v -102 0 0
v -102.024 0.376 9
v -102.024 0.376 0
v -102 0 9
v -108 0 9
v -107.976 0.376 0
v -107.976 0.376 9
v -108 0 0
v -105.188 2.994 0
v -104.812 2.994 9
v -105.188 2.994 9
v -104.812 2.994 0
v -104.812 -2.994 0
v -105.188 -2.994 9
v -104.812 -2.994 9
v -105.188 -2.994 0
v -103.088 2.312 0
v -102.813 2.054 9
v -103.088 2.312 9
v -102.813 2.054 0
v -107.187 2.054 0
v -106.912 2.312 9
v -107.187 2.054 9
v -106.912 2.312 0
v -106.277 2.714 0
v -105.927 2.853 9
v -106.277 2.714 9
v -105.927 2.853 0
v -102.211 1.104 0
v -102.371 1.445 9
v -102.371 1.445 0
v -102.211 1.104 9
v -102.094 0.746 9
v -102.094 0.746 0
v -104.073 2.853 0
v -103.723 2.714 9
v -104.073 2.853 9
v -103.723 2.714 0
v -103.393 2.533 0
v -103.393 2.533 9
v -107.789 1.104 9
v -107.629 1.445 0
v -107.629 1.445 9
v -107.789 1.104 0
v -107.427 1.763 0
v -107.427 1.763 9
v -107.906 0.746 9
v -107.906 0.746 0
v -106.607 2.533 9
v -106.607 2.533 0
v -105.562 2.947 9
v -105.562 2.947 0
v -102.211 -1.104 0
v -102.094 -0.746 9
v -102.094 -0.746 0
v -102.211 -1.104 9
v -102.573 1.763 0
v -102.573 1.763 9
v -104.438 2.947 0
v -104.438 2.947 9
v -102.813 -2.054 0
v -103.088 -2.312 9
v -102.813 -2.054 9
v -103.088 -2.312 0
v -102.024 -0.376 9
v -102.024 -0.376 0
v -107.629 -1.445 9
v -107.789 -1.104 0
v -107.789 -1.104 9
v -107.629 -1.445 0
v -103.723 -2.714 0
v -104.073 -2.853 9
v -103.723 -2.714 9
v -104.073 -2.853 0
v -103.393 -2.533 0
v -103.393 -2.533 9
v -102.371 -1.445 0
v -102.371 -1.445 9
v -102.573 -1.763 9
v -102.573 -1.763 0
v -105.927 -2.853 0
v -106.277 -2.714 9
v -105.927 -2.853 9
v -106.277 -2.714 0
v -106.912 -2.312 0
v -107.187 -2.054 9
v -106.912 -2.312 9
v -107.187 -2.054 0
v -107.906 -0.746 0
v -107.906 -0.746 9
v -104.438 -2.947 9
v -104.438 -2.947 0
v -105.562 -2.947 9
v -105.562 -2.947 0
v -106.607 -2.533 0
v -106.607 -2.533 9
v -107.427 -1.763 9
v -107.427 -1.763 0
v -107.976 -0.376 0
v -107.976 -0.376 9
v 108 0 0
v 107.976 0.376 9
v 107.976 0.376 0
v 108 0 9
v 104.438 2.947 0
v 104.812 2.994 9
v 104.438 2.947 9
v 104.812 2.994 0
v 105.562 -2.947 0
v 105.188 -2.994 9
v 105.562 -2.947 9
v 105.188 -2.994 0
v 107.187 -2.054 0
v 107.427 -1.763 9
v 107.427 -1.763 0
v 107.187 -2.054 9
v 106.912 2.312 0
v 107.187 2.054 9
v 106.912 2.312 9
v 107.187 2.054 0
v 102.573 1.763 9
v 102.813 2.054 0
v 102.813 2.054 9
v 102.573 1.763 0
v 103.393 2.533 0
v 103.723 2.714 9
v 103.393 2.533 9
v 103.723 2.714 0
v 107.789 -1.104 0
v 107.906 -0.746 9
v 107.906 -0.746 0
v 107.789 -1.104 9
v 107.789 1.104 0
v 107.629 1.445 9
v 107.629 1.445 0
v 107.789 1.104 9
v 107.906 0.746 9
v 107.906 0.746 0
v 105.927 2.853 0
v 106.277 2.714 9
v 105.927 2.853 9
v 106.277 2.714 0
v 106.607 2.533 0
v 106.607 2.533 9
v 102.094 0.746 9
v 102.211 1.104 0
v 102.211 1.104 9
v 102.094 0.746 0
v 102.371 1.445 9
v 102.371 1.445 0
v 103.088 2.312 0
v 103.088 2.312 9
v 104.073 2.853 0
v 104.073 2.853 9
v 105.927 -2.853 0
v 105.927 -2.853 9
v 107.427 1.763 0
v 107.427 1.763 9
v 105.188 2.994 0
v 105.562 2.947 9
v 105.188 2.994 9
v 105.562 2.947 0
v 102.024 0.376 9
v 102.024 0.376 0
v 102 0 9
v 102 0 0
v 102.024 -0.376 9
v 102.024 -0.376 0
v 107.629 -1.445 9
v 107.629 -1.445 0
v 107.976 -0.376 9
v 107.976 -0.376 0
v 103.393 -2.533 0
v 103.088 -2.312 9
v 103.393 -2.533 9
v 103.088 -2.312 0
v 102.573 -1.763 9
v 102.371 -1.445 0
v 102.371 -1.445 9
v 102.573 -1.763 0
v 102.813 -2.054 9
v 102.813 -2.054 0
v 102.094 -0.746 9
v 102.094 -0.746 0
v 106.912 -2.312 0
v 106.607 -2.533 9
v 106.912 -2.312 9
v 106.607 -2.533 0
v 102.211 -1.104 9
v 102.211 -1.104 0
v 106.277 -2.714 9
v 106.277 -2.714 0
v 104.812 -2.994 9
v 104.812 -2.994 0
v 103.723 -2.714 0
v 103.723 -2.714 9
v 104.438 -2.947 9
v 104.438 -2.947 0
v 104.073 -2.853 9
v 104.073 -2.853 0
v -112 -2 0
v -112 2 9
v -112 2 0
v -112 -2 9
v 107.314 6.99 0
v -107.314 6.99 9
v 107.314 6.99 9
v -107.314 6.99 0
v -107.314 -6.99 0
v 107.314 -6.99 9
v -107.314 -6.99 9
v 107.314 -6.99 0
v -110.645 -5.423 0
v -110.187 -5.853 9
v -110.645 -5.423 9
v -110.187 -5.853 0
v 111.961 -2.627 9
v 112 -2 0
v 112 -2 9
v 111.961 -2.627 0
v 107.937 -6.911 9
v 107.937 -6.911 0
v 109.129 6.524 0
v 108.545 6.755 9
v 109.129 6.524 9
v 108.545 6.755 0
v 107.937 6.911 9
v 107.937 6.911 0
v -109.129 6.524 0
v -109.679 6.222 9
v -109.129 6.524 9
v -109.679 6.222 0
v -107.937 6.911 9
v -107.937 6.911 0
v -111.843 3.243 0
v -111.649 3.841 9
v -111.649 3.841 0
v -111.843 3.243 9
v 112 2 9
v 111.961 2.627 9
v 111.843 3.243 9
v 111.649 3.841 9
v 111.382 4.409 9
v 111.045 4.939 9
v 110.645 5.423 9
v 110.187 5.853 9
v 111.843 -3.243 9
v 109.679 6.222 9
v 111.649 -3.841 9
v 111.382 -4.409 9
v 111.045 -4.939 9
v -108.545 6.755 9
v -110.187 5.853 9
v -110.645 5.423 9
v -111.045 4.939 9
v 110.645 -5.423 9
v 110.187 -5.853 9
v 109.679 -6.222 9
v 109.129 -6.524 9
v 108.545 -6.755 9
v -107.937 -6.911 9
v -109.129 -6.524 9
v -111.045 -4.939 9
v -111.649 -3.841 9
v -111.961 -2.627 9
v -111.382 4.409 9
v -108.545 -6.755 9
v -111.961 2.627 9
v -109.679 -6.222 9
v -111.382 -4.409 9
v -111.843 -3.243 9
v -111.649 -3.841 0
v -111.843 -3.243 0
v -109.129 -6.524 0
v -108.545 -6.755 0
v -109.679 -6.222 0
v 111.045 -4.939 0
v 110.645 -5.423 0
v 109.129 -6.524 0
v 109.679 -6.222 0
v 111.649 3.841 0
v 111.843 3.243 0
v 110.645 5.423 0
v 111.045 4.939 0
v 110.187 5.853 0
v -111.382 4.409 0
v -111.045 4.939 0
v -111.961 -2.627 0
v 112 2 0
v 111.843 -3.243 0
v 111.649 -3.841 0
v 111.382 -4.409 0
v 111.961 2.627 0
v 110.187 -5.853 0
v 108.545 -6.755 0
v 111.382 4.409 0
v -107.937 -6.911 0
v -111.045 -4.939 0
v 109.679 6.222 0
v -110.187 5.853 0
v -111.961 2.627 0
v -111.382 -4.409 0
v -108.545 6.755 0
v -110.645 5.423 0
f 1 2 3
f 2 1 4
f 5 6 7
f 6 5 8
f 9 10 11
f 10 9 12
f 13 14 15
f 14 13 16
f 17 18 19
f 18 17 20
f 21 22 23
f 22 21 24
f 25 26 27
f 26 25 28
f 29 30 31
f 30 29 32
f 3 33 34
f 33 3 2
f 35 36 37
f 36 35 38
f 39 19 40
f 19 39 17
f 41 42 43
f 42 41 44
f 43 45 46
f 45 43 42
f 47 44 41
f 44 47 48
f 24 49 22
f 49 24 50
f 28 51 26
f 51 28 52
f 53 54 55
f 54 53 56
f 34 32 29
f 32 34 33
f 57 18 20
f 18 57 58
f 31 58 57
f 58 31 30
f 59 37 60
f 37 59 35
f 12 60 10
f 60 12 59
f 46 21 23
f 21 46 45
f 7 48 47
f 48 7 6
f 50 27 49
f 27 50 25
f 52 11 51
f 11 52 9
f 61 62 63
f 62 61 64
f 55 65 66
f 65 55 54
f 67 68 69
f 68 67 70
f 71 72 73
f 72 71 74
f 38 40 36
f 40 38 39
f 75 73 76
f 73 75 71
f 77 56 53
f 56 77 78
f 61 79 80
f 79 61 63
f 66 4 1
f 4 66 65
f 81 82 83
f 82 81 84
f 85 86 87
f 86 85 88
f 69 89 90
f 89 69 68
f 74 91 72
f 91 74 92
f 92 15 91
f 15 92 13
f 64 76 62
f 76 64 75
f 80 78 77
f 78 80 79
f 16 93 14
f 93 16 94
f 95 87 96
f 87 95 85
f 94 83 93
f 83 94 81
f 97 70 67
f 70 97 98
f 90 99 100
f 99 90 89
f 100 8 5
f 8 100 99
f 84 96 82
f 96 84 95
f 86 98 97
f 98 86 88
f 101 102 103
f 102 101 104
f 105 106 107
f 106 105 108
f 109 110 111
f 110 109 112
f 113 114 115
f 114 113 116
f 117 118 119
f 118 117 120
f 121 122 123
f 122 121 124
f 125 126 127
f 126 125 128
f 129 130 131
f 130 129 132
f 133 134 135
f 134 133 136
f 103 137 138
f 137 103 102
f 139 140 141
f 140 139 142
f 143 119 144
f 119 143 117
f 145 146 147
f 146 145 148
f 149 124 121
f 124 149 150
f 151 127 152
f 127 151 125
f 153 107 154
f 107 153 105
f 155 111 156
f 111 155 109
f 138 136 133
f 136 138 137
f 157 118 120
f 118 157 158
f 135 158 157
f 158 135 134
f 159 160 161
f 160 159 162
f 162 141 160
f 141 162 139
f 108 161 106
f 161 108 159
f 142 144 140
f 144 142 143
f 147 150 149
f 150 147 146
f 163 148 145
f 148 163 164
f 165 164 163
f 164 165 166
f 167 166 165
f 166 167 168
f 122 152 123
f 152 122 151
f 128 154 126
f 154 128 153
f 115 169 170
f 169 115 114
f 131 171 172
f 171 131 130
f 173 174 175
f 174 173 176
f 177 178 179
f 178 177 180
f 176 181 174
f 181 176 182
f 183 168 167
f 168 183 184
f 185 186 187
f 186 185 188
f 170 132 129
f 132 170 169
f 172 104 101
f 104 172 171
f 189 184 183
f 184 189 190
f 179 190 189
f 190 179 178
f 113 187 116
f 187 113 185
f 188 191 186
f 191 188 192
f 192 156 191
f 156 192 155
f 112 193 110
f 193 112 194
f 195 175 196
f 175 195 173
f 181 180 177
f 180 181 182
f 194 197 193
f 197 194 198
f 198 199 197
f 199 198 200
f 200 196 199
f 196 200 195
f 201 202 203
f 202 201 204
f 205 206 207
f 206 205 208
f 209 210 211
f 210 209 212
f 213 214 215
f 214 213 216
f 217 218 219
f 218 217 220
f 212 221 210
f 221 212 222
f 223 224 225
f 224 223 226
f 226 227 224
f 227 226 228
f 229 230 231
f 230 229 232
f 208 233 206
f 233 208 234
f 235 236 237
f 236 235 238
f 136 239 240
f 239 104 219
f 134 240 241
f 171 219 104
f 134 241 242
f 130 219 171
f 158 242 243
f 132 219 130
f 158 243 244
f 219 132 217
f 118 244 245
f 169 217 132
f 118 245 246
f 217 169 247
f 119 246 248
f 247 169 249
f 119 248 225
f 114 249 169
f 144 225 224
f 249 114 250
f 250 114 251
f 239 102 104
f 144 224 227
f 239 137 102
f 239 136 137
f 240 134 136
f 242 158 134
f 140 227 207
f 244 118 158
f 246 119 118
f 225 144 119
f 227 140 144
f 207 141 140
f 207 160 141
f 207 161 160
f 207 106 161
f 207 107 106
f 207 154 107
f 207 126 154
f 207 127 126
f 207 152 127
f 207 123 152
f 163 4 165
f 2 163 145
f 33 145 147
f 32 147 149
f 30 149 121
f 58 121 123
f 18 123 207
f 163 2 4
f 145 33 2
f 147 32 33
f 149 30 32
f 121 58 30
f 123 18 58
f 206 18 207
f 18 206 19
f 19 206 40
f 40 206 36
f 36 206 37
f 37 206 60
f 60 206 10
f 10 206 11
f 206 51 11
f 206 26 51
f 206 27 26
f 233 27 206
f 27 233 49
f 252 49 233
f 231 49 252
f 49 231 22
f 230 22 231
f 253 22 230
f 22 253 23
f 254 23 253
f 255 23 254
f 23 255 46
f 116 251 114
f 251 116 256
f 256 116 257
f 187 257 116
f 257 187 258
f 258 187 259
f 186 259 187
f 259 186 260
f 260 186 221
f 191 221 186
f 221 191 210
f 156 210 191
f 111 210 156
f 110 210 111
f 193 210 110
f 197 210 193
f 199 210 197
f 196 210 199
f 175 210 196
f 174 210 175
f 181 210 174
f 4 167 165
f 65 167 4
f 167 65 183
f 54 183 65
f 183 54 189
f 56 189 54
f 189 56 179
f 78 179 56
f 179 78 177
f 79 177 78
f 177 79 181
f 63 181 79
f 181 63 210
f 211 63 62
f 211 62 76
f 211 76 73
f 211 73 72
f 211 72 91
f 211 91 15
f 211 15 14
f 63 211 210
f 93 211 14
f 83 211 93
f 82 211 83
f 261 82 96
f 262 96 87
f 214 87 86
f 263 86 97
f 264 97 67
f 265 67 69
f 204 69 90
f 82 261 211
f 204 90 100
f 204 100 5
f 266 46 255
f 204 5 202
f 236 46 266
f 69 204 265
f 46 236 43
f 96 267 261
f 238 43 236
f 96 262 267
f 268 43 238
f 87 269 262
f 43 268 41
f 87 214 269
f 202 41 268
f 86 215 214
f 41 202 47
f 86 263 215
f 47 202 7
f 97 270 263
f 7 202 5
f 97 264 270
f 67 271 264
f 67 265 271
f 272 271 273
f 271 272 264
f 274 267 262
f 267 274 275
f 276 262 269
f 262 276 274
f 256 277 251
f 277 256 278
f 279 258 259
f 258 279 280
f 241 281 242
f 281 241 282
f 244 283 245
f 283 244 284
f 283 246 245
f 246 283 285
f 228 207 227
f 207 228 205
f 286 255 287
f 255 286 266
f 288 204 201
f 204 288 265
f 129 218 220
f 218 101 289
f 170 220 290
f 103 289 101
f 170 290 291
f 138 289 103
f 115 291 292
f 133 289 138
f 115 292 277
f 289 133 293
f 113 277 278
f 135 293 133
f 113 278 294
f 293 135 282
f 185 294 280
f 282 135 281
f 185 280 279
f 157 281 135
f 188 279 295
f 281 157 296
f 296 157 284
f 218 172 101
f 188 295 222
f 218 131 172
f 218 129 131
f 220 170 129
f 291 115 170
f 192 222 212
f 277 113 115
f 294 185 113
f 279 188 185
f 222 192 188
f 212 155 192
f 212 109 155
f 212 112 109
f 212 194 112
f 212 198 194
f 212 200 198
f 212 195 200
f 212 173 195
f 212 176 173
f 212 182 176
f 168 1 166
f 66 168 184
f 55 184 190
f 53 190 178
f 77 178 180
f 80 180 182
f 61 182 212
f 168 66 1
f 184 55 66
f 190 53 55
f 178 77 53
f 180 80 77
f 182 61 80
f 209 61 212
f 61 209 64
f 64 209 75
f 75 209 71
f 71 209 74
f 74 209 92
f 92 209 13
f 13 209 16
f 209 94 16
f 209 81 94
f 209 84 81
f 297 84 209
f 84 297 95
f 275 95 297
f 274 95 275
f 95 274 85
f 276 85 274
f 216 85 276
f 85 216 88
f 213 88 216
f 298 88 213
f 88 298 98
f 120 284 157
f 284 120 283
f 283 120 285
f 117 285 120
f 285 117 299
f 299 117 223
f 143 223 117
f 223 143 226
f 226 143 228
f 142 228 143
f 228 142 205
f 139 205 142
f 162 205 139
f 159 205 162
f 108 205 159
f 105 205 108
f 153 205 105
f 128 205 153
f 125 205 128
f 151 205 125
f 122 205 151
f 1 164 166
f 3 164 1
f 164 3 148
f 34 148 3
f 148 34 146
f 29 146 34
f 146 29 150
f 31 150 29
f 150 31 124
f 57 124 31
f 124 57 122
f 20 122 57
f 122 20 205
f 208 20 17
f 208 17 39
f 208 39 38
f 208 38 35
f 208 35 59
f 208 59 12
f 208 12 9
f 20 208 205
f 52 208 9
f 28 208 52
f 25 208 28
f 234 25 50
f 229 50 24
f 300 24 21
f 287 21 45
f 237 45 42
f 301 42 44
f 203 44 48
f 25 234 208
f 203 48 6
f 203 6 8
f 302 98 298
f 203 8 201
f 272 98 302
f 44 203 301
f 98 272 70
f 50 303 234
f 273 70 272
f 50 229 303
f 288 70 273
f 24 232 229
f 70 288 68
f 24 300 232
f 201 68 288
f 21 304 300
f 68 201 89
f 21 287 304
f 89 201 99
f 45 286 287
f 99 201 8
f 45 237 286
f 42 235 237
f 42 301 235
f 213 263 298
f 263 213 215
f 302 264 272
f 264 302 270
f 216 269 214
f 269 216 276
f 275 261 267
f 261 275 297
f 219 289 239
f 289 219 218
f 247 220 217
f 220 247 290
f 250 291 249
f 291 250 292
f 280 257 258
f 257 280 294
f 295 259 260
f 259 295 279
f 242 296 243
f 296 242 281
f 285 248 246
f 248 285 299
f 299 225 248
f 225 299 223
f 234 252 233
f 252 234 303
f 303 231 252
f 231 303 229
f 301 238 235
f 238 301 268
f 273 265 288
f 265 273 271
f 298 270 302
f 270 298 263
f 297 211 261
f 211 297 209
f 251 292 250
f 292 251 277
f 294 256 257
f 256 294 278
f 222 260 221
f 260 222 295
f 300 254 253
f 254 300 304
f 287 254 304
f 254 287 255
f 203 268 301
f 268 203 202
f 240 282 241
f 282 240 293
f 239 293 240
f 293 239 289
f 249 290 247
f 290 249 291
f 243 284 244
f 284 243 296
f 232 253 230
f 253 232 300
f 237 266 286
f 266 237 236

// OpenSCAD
$fn = 50;


difference() {
	union() {
		hull() {
			translate(v = [-107.0000000000, 2.0000000000, 0]) {
				cylinder(h = 9, r = 5);
			}
			translate(v = [107.0000000000, 2.0000000000, 0]) {
				cylinder(h = 9, r = 5);
			}
			translate(v = [-107.0000000000, -2.0000000000, 0]) {
				cylinder(h = 9, r = 5);
			}
			translate(v = [107.0000000000, -2.0000000000, 0]) {
				cylinder(h = 9, r = 5);
			}
		}
	}
	union() {
		translate(v = [-105.0000000000, 0.0000000000, 0]) {
			cylinder(h = 9, r = 3.0000000000);
		}
		translate(v = [105.0000000000, 0.0000000000, 0]) {
			cylinder(h = 9, r = 3.0000000000);
		}
		translate(v = [-105.0000000000, 0.0000000000, 0]) {
			cylinder(h = 9, r = 1.5000000000);
		}
		translate(v = [105.0000000000, 0.0000000000, 0]) {
			cylinder(h = 9, r = 1.5000000000);
		}
		translate(v = [-105.0000000000, 0.0000000000, 0]) {
			cylinder(h = 9, r = 1.5000000000);
		}
		translate(v = [105.0000000000, 0.0000000000, 0]) {
			cylinder(h = 9, r = 1.5000000000);
		}
		translate(v = [-105.0000000000, 0.0000000000, 0]) {
			cylinder(h = 9, r = 1.5000000000);
		}
		translate(v = [105.0000000000, 0.0000000000, 0]) {
			cylinder(h = 9, r = 1.5000000000);
		}
	}
}
